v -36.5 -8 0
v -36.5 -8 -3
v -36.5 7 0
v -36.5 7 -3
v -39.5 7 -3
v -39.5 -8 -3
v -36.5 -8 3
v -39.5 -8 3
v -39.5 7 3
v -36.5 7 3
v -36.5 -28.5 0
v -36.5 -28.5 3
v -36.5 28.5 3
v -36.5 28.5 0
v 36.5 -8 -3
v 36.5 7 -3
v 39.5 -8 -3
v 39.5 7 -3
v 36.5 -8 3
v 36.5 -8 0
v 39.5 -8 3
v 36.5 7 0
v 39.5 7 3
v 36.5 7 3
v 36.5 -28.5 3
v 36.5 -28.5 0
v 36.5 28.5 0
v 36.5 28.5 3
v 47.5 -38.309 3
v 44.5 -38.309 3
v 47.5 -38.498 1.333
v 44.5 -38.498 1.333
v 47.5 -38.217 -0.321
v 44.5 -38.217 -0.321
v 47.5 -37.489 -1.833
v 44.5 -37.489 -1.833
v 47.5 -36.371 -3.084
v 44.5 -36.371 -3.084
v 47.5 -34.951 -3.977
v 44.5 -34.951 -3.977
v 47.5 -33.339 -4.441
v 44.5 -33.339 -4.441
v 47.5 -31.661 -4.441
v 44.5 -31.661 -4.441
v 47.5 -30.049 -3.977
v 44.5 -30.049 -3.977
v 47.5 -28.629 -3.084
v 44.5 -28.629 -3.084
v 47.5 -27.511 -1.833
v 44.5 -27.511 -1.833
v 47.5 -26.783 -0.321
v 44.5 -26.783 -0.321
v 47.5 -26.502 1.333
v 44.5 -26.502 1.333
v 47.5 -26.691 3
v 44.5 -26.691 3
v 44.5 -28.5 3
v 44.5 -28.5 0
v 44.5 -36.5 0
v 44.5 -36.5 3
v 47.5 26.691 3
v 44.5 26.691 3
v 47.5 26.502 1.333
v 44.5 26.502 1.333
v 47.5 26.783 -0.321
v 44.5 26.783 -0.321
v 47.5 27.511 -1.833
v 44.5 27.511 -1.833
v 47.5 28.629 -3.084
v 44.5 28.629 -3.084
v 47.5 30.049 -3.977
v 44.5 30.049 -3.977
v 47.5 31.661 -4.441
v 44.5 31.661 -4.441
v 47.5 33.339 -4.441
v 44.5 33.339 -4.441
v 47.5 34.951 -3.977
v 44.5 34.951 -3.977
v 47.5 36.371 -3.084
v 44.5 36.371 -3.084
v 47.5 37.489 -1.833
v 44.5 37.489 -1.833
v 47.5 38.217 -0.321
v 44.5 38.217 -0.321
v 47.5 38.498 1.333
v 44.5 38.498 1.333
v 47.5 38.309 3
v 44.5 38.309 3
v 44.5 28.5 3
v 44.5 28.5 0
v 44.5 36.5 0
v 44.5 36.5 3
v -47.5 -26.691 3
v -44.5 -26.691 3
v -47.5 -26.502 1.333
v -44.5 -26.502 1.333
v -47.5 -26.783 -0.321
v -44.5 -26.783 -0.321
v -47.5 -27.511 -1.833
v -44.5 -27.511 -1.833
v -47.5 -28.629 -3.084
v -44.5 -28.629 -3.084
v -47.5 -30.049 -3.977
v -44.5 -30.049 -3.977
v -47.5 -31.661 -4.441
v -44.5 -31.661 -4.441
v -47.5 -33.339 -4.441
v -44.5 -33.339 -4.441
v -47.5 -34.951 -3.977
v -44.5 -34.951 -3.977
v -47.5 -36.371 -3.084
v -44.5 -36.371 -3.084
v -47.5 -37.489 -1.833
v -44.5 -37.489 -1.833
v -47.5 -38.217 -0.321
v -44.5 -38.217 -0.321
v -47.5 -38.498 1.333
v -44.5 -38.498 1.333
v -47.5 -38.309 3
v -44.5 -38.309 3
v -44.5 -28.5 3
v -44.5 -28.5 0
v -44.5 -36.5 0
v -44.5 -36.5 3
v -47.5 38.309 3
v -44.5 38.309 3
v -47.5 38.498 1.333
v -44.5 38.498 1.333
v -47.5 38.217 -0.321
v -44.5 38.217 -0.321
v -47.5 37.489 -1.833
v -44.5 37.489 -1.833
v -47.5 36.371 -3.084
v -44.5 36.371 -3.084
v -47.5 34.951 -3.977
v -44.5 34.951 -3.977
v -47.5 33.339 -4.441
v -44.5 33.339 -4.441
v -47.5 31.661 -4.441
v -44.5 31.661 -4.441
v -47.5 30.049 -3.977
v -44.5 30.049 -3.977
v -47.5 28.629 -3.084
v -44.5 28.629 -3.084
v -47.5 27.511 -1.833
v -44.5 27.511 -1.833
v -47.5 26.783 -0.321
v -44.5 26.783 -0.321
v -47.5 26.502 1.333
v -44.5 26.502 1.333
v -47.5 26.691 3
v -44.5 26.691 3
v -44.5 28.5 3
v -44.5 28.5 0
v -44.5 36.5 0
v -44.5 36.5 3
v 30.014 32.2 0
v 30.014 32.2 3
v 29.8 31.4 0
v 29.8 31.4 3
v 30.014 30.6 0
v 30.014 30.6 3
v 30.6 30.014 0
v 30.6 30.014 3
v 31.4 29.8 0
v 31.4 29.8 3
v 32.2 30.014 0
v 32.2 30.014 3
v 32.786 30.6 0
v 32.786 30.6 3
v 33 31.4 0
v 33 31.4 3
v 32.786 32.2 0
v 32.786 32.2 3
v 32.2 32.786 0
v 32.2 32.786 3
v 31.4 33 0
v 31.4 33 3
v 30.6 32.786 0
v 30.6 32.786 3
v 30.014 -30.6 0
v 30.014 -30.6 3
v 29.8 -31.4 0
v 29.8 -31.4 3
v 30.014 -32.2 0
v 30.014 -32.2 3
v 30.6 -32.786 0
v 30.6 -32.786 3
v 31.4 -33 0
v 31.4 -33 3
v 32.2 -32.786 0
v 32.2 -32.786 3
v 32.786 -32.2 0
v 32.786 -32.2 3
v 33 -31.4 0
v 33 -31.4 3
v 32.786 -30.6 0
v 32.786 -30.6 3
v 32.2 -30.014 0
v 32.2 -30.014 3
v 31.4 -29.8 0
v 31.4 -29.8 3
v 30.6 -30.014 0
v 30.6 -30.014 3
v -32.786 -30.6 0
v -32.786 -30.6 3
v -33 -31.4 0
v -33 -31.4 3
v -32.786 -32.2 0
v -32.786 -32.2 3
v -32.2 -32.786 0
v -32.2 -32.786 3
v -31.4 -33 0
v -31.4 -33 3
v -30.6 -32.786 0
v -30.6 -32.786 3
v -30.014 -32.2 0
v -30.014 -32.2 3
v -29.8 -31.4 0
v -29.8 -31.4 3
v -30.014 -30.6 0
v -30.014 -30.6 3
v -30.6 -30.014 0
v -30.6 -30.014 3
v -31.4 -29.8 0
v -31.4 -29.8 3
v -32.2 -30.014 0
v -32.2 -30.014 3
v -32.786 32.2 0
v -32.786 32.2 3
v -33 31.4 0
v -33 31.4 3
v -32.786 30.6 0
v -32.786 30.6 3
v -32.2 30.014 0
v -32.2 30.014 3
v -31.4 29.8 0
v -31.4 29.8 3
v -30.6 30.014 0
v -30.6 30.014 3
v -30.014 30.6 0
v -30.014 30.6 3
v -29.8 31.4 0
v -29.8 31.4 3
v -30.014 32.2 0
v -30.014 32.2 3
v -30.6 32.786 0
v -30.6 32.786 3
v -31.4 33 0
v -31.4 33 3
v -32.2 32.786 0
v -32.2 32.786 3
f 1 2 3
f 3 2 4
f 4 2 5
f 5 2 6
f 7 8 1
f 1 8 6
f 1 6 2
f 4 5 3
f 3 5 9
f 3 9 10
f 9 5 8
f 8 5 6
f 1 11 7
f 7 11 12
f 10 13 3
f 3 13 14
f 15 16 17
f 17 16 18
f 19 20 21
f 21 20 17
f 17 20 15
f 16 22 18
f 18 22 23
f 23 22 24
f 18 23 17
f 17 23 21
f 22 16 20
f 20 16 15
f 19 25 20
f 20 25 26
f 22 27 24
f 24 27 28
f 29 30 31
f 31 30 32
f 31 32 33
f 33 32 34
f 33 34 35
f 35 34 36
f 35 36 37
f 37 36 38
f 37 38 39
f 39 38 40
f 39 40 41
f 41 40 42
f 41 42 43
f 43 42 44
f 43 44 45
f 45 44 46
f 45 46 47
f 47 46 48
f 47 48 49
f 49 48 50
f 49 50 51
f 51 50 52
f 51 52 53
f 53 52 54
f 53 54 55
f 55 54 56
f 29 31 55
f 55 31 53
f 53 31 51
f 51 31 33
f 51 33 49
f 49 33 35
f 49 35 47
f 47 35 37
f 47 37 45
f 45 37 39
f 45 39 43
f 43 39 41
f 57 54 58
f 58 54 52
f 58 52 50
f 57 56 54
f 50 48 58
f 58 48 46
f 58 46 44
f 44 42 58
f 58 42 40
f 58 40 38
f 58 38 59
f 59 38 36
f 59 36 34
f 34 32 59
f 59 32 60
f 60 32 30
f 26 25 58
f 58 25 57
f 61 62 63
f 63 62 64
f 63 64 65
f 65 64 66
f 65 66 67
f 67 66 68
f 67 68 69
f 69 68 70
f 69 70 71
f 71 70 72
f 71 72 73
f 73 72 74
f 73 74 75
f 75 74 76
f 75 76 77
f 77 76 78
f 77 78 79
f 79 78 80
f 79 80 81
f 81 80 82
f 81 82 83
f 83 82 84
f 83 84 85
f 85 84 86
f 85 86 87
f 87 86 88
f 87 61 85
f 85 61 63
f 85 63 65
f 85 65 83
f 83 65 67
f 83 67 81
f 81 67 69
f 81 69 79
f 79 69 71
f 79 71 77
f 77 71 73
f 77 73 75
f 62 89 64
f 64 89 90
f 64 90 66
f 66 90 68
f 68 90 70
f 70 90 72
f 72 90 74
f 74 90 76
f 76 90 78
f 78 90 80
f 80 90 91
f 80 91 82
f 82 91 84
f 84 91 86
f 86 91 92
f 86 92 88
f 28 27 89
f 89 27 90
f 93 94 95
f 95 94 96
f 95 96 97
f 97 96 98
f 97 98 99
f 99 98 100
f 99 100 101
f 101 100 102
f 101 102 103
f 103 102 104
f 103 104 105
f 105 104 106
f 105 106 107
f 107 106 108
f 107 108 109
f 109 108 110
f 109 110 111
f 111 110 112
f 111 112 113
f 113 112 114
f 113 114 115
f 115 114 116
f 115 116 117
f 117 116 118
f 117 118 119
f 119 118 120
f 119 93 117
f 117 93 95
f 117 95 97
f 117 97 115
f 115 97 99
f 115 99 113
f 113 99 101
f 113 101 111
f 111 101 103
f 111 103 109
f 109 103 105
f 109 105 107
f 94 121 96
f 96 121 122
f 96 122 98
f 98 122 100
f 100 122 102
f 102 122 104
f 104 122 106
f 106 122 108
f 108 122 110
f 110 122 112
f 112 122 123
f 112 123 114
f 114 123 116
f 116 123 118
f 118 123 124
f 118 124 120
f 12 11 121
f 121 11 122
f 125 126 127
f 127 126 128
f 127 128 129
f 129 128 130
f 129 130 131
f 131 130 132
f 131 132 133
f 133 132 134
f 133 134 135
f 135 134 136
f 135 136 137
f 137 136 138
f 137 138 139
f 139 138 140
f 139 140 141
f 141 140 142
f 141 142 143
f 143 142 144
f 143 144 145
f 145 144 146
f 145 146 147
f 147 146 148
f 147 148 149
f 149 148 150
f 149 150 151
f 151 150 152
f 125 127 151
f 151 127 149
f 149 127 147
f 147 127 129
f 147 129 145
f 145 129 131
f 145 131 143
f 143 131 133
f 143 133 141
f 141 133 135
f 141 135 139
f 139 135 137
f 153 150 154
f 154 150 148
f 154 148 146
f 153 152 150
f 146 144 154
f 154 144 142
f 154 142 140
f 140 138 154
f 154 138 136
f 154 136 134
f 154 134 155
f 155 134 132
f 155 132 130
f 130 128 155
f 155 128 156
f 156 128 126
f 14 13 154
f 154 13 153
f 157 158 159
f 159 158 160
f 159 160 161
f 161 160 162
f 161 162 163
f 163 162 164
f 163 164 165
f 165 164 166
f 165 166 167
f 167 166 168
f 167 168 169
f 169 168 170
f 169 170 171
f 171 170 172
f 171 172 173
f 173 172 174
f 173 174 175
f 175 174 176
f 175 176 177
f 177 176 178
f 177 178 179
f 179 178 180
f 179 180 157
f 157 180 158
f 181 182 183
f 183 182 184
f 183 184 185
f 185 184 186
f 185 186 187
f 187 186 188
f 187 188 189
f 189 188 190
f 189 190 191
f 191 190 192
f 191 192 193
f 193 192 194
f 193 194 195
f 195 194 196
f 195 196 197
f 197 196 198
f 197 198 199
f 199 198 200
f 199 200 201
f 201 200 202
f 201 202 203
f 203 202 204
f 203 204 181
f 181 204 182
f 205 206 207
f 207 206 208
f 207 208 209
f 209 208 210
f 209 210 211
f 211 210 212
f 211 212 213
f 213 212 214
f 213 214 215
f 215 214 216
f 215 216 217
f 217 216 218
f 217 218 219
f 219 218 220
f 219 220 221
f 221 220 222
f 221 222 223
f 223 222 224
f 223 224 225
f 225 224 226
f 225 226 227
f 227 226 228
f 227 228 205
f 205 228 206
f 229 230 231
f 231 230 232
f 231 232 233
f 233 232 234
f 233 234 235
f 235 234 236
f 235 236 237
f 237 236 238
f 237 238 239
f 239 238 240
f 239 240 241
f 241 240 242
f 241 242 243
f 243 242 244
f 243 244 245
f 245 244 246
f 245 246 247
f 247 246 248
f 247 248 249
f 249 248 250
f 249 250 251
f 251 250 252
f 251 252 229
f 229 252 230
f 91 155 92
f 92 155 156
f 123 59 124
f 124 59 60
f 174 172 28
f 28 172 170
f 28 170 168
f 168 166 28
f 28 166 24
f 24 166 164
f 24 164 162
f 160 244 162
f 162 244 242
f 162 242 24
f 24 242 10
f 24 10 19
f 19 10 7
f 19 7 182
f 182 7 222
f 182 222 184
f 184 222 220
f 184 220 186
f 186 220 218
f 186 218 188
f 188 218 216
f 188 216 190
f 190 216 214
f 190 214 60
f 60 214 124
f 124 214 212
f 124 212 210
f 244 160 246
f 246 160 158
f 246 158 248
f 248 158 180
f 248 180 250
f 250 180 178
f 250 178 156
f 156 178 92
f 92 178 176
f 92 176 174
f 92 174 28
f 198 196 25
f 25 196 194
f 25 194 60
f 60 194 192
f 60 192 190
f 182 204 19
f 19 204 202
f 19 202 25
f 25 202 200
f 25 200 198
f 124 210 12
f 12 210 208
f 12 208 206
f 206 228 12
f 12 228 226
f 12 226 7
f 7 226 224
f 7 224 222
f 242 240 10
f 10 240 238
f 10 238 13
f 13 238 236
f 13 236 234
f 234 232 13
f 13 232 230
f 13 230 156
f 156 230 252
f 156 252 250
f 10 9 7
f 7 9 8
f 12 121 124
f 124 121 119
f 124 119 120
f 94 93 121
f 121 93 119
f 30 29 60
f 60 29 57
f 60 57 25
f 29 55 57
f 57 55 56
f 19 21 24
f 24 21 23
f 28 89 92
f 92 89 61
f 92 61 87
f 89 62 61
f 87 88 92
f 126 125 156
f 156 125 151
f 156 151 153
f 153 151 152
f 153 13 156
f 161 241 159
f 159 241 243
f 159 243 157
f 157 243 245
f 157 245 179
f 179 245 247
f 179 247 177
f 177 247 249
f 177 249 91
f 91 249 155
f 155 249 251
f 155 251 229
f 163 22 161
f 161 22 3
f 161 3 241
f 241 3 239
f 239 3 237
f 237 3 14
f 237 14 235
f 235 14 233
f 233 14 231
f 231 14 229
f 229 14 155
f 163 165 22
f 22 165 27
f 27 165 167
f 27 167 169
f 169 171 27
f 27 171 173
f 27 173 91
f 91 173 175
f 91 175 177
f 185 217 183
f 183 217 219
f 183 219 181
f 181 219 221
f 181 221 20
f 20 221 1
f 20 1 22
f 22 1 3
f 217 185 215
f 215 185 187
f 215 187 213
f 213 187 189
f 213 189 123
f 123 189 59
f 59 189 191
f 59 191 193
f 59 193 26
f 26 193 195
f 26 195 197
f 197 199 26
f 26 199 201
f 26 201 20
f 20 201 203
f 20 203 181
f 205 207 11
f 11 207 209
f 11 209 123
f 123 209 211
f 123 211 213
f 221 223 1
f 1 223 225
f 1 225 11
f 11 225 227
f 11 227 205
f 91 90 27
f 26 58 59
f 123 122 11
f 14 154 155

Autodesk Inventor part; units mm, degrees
ref_plane "YZ Plane" through (0, 0, 0) normal (1, 0, 0) x (0, 1, 0)
ref_plane "XZ Plane" through (0, 0, 0) normal (0, 1, 0) x (-1, 0, 0)
ref_plane "XY Plane" through (0, 0, 0) normal (0, 0, 1) x (1, 0, 0)
sketch "Boceto1" plane through (0, 0, 0) normal (0, 0, 1) x (1, 0, 0)
  line L0 (-33.5, -15.5) -> (-33.5, 15.5) projected
  line L1 (-36.5, -15.5) -> (-33.5, -15.5) projected
  line L2 (-33.5, 15.5) -> (-36.5, 15.5) projected
  line L3 (-36.5, 15.5) -> (-36.5, -15.5) projected
  line L4 (36.5, -36.5) -> (36.5, 36.5) projected
  line L5 (-36.5, -36.5) -> (36.5, -36.5) projected
  line L6 (-36.5, 36.5) -> (-36.5, -36.5) projected
  line L7 (36.5, 36.5) -> (-36.5, 36.5) projected
  point P0 (0, 0)
extrude "Extrusión1" add sketch "Boceto1" along normal blind 3
sketch "Boceto2" plane through (0, 0, 3) normal (0, 0, 1) x (1, 0, 0)
  line L0 (36.5, 36.5) -> (-36.5, 36.5) projected
  line L1 (-36.5, 36.5) -> (-36.5, -36.5) projected
  line L2 (-36.5, -36.5) -> (36.5, -36.5) projected
  line L3 (36.5, -36.5) -> (36.5, 36.5) projected
  circle A0 centre (-31.4, 31.4) radius 2.1 projected
  circle A1 centre (-31.4, -31.4) radius 2.1 projected
  circle A2 centre (31.4, -31.4) radius 2.1 projected
  circle A3 centre (31.4, 31.4) radius 2.1 projected
  point P0 (0, 0)
hole "Agujero1" at (-31.4, 31.4, 3) at (-31.4, -31.4, 3) at (31.4, -31.4, 3) at (31.4, 31.4, 3) direction (0, 0, -1) diameter 3.2 depth 5
sketch "Boceto4" plane through (-36.5, -36.5, 0) normal (-1, 0, 0) x (0, 0, 1)
  line L0 (0, 73) -> (0, 0) projected
  line L1 (0, 0) -> (3, 0) projected
  line L2 (3, 73) -> (3, 0) projected
  line L3 (0, 73) -> (3, 73) projected
  line L4 (3, 73) -> (0, 73)
  line L5 (0, 73) -> (0, 65)
  line L6 (0, 65) -> (3, 65)
  line L7 (3, 65) -> (3, 73)
  point P0 (0, 36.5)
  dimension "d9" = 8
extrude "Extrusión2" add sketch "Boceto4" along normal blind 8 contours L3 L2 L6 L0
sketch "Boceto5" plane through (-44.5, -36.5, 0) normal (-1, 0, 0) x (0, 0, 1)
  line L0 (3, 65) -> (3, 73) projected
  line L1 (3, 73) -> (0, 73) projected
  line L2 (0, 73) -> (0, 65) projected
  line L3 (0, 65) -> (3, 65) projected
  line L4 (0, 73) -> (3, 65)
  circle A0 centre (1.5, 69) radius 6
  line L5 (0, 62) -> (3, 62)
  line L6 (3, 62) -> (3, 76)
  line L7 (3, 76) -> (0, 76)
  line L8 (0, 76) -> (0, 62)
  line L9 (0, 62) -> (3, 76) construction
  line L10 (3, 62) -> (0, 76) construction
  point P0 (0, 36.5)
  point P1 (3, 74.8095)
  point P2 (3, 63.1905)
  dimension "d12" = 12
extrude "Extrusión3" add sketch "Boceto5" along normal blind 3 contours L4 L1 L0 | L6 A0 L8 L3 | L3 L2 L4 | L1 L8 A0 L6 | L8 A0 L2
ref_plane "Plano de trabajo1" through (36.5, 0, 3) normal (0, 1, 0) x (1, 0, 0)
ref_plane "Plano de trabajo2" through (0, -36.5, 0) normal (-1, 0, 0) x (0, 0, 1)
mirror "Simetría1" about plane through (36.5, 0, 3) normal (0, 1, 0) of "Extrusión3", "Extrusión2"
mirror "Simetría2" about plane through (0, -36.5, 0) normal (-1, 0, 0) of "Extrusión3", "Extrusión2", "Simetría1"
sketch "Boceto6" plane through (36.5, -28.5, 0) normal (1, 0, 0) x (0, 0, -1)
  line L0 (0, 13) -> (75, 13) projected
  arc A0 (75, 7) -> (75, 13) centre (75, 10) ccw projected
  line L1 (75, 7) -> (0, 7) projected
  line L2 (0, -8) -> (0, 7) projected
  line L3 (81, -8) -> (0, -8) projected
  line L4 (81, -8) -> (81, 65) projected
  line L5 (81, 65) -> (0, 65) projected
  line L6 (0, 50) -> (0, 65) projected
  line L7 (0, 50) -> (75, 50) projected
  arc A1 (75, 44) -> (75, 50) centre (75, 47) ccw projected
  line L8 (75, 44) -> (0, 44) projected
  line L9 (0, 13) -> (0, 44) projected
  line L10 (0, 44) -> (0, 13) projected
  line L11 (-3, 0) -> (0, 0) projected
  line L12 (0, 0) -> (0, 57) projected
  line L13 (0, 57) -> (-3, 57) projected
  line L14 (-3, 0) -> (-3, 57) projected
  line L15 (3, 35.5) -> (-3, 35.5)
  line L16 (-3, 35.5) -> (-3, 20.5)
  line L17 (-3, 20.5) -> (3, 20.5)
  line L18 (3, 20.5) -> (3, 35.5)
  line L19 (3, 35.5) -> (-3, 20.5) construction
  line L20 (-3, 35.5) -> (3, 20.5) construction
  point P0 (0, 28.5)
  point P1 (0, 28)
  dimension "d15" = 6
  dimension "d16" = 15
extrude "Extrusión4" add sketch "Boceto6" along normal blind 3 contours L17 L14 L15 L9 | L9 L15 L18 L17
mirror "Simetría3" about plane through (0, -36.5, 0) normal (-1, 0, 0) of "Extrusión4"
properties part number "Tapa dispensador"
